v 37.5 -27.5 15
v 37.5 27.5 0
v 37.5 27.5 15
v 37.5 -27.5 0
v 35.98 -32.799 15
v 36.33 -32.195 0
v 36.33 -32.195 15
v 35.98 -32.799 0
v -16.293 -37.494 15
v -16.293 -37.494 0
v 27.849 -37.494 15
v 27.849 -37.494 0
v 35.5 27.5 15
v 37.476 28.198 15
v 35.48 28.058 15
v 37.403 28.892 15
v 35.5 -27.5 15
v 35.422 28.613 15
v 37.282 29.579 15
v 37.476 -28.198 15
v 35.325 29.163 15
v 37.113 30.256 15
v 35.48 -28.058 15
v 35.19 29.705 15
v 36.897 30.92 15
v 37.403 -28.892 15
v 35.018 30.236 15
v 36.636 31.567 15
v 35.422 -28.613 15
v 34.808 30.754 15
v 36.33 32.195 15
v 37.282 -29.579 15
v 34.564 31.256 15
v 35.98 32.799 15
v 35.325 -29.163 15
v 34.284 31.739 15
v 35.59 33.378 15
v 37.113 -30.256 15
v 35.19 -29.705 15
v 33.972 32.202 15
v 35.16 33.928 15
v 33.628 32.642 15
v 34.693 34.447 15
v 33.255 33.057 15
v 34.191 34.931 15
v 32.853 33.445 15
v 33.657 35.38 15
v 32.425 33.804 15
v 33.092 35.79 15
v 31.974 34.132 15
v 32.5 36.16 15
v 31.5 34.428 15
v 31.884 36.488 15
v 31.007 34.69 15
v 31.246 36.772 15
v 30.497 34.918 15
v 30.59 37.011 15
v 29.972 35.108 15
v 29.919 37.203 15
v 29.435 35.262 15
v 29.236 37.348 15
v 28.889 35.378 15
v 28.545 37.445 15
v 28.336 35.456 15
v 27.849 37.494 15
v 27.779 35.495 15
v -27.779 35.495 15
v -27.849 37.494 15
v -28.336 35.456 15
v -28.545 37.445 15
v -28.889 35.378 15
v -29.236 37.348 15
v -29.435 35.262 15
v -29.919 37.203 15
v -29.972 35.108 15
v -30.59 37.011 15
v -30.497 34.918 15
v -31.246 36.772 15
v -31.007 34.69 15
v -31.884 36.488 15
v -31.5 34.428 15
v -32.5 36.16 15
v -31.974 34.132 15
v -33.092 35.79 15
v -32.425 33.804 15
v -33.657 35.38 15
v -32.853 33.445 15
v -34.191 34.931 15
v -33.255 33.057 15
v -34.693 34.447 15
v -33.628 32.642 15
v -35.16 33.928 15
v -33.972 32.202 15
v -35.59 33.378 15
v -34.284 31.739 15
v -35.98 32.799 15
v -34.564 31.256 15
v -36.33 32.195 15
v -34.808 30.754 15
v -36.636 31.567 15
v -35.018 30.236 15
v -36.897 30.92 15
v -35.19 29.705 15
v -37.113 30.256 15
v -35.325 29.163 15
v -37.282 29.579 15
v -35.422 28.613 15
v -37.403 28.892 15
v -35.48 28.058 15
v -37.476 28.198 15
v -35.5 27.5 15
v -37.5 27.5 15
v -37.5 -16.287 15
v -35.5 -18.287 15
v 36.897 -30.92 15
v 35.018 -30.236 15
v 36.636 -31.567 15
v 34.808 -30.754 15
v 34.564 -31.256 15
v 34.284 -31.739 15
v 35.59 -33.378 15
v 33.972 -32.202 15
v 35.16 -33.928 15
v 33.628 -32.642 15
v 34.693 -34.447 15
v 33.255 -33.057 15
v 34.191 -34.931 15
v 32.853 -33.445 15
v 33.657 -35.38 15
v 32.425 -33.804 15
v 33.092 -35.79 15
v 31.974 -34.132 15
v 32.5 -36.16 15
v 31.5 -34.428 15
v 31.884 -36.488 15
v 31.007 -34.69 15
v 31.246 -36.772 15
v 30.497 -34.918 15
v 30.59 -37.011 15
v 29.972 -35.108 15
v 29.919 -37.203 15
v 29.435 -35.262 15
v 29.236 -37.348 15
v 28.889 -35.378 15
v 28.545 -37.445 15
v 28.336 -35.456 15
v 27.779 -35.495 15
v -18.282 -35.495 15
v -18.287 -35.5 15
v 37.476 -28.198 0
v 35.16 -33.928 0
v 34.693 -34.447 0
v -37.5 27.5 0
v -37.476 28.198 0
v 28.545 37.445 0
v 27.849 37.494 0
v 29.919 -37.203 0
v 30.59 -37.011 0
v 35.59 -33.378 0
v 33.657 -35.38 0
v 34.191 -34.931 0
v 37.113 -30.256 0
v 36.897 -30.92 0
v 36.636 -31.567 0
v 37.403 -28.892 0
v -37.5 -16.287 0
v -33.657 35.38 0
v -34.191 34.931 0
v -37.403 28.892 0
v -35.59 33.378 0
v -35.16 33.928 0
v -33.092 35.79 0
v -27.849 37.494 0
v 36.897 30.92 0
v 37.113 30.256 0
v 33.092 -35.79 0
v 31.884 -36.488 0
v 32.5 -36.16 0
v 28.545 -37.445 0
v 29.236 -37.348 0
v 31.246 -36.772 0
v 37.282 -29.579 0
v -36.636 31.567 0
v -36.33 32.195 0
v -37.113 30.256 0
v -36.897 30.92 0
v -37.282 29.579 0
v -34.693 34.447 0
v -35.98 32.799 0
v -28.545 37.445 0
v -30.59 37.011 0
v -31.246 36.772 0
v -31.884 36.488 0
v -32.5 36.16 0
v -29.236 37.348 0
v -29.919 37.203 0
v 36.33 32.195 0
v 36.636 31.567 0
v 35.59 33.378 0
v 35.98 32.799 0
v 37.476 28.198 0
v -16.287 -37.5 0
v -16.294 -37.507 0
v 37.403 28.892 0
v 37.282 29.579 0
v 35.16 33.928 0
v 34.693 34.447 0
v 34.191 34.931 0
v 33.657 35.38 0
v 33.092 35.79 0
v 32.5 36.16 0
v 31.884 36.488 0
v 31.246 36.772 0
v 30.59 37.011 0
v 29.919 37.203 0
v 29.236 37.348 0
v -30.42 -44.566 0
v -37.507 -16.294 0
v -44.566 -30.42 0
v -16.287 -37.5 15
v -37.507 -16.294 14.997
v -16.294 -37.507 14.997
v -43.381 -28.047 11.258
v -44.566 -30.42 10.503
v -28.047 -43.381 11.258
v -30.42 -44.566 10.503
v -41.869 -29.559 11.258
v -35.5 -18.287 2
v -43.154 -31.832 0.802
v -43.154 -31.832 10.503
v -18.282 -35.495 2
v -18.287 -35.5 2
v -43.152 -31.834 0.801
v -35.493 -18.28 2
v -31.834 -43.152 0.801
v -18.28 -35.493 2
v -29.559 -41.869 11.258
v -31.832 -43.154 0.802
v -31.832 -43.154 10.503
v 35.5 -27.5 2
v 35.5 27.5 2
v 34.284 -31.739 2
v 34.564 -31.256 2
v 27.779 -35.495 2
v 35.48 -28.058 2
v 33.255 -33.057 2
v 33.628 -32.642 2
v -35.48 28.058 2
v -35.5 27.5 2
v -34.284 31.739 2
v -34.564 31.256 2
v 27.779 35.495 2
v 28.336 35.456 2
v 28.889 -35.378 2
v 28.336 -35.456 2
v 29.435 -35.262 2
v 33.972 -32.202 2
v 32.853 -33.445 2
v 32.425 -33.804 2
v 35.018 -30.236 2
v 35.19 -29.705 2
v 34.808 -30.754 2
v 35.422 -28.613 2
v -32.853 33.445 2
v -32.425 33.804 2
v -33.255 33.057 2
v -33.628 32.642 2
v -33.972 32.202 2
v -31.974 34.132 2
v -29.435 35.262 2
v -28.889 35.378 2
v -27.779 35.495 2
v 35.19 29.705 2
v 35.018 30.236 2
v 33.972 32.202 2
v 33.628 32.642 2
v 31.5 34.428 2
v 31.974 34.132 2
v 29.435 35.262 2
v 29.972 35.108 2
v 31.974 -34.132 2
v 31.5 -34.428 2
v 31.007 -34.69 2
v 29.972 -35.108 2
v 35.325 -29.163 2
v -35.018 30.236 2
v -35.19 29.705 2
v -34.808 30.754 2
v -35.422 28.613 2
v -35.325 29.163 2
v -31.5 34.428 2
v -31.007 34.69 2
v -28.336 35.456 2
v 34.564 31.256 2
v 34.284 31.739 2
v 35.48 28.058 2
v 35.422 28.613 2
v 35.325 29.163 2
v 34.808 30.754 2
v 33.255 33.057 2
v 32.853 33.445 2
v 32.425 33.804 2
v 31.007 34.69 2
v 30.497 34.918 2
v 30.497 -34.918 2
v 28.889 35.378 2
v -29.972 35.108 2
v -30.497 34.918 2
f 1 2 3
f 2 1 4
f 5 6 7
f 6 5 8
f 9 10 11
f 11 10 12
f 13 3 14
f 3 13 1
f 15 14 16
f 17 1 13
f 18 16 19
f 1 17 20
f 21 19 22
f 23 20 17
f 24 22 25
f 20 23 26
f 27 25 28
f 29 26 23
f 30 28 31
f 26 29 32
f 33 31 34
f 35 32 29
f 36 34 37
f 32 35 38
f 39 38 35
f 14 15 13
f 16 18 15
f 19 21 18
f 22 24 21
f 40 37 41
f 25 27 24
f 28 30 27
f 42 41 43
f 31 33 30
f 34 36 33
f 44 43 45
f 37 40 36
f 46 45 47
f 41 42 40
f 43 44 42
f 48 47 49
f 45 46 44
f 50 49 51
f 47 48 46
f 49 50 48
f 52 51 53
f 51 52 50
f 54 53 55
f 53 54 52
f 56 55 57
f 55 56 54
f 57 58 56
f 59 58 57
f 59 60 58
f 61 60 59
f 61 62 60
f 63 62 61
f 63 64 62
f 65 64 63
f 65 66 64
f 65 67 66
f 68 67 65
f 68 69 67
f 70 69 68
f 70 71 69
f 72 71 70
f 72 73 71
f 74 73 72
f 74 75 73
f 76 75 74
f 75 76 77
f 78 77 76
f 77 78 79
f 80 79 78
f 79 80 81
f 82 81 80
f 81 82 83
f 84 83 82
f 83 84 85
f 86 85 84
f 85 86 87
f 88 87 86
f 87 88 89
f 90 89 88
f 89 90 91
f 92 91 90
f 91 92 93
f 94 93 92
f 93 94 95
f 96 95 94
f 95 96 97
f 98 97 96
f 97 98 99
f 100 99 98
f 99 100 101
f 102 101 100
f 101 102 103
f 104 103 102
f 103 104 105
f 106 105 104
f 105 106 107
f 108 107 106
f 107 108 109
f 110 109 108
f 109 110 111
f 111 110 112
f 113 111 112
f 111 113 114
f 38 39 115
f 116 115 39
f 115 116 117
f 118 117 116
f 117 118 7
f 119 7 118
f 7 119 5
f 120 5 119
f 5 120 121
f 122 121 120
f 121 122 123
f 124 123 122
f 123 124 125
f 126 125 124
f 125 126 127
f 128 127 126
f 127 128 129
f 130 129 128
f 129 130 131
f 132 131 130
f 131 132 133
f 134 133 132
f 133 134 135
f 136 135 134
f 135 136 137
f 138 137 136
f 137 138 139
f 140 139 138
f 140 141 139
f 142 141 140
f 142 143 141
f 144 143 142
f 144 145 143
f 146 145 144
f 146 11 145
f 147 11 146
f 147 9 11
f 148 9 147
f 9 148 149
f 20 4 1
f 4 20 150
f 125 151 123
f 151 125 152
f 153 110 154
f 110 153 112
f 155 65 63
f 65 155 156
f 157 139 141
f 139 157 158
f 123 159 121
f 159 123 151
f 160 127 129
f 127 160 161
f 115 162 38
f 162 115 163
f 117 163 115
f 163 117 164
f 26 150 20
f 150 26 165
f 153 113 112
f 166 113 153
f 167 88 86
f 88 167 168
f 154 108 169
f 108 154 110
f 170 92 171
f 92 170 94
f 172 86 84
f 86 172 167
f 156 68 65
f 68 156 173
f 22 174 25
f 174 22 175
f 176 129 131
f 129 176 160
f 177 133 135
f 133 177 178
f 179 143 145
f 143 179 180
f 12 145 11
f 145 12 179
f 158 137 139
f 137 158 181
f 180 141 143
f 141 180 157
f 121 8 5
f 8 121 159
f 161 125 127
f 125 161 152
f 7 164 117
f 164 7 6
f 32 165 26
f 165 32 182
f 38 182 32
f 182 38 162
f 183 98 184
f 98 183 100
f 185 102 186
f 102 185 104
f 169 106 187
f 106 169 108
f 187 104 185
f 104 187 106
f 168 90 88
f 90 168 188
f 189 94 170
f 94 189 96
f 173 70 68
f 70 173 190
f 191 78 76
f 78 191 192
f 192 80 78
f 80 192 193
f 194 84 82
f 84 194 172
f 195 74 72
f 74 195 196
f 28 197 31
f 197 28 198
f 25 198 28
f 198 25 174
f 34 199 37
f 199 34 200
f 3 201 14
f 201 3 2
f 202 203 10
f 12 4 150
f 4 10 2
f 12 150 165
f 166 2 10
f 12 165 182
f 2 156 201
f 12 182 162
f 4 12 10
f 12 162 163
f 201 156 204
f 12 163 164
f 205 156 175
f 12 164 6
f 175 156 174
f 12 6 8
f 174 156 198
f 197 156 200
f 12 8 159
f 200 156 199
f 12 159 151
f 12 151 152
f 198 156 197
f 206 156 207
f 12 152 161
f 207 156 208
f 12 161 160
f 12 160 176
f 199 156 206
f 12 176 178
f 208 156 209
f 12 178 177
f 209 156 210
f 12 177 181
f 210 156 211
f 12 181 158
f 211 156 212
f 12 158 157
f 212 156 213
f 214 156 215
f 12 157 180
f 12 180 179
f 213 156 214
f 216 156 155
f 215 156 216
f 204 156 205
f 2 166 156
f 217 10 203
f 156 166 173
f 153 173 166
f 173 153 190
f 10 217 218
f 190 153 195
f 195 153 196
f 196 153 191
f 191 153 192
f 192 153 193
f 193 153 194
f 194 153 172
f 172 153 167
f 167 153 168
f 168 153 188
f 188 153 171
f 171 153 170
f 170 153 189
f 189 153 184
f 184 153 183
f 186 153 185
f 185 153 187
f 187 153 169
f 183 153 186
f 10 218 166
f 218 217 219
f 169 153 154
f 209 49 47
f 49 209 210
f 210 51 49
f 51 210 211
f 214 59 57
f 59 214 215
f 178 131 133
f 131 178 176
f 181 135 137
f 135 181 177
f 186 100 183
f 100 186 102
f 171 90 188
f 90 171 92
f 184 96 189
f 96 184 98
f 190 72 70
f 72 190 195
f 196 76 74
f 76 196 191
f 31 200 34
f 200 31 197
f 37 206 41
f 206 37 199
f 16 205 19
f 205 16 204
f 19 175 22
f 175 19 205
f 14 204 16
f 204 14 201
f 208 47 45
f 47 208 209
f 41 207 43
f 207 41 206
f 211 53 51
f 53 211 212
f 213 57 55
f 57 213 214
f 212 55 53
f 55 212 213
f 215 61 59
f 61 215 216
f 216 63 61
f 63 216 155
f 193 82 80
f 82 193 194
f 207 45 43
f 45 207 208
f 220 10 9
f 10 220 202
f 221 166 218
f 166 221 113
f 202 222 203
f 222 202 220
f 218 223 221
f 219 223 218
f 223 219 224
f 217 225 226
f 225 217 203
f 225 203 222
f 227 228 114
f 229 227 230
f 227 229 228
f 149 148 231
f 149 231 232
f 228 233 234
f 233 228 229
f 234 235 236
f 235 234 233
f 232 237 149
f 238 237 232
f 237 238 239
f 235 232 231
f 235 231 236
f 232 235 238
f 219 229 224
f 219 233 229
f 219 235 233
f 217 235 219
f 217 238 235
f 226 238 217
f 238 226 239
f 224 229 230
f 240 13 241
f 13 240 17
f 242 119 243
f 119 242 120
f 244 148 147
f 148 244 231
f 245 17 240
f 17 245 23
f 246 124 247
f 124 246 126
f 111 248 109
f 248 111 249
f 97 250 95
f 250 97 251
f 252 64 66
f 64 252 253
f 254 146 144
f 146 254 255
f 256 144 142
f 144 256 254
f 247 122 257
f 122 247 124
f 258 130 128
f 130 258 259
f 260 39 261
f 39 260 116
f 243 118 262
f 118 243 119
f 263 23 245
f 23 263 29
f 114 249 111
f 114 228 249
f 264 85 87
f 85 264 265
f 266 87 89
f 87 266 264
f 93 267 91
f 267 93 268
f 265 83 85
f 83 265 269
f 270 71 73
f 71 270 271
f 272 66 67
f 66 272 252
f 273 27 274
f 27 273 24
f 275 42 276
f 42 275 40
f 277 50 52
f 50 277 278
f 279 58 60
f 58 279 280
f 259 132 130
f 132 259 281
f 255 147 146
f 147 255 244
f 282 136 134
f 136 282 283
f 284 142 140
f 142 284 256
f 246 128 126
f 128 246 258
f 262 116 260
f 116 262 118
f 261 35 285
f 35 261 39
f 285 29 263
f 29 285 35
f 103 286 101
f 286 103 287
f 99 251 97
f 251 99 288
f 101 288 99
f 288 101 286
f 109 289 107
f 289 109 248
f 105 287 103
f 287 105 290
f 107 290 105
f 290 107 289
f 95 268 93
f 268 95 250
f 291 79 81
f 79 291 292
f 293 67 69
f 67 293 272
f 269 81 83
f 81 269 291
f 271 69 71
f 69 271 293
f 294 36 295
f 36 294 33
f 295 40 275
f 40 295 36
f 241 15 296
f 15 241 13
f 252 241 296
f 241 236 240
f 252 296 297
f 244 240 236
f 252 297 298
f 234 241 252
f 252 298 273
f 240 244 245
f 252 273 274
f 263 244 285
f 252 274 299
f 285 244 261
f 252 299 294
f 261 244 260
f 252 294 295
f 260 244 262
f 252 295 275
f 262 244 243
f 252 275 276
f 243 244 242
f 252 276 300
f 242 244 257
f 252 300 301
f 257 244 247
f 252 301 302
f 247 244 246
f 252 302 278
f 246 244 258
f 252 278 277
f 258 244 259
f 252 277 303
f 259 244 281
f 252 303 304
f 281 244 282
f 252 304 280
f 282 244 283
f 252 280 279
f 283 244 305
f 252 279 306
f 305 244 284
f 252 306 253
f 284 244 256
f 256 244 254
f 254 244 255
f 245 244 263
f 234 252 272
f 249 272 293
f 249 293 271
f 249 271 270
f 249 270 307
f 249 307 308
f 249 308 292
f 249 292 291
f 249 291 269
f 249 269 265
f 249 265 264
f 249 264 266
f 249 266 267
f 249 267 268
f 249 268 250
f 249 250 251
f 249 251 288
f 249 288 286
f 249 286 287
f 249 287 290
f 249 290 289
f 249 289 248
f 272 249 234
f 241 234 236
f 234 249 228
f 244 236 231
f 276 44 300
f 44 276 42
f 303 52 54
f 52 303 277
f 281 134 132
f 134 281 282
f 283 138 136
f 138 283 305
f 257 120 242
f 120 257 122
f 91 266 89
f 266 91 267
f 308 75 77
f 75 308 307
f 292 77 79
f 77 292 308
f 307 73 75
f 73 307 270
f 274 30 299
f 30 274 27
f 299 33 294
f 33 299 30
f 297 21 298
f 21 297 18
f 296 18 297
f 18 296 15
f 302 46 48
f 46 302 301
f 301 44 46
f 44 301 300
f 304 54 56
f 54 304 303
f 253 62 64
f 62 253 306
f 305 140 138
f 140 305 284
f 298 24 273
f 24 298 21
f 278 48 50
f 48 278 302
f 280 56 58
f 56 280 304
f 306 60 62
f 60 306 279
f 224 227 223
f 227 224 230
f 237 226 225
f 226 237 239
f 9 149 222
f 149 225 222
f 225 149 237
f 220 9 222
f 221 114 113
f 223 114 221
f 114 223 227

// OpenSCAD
// Tray external width.
width = 75;

// Tray external length.
length = 75;

// Tray external height.
height = 15;

// Tray corner radius
corner_radius = 10;

// Thickness of wall around the tray
wall_thickness = 2;

// Thickness of the base
base_thickness = 2;

// Spout width at the tray end.
spout_base_width = 30;

// Spout width at the outer end.
spout_tip_width = 20;

// Spout end height as a fraction of the tray wall height.
spout_tip_height_fraction = 0.7;

// Base thickness at the outer end of the spout.
spout_tip_base_thickness = 0.8;

// Controls spout length. Tweak to get desired spout length. 
spout_length_control = 15;

// 0 for right handed, 1 for left handed.
left_hand = 0;  

// Circle smoothness (number of faces).
$fn = 90;

spout_vertical_angle = max(0, atan((height - height * spout_tip_height_fraction)/ spout_length_control));

// Adding '0' to hide in thingiverse customizer.
eps1 = 0.01 + 0;
eps2 = 2 * eps1;


module rounder_cube(w, l, h, r) {
    dx = l/2-r;
    dy = w/2-r;
  hull() {
      translate([dx, dy, 0]) cylinder(r=r, h=h);
      translate([dx, -dy, 0]) cylinder(r=r, h=h);
      translate([-dx, dy, 0]) cylinder(r=r, h=h);
      translate([-dx, -dy, 0]) cylinder(r=r, h=h);
  }
}

module spout() {
  hull() {
    translate([0, -spout_base_width/2, 0]) cube([eps1, spout_base_width, height]);
    translate([spout_length_control-eps1, -spout_tip_width/2, 0]) cube([eps1, spout_tip_width, height]);
  }
}

module spout_slot() {
  hull() {
    translate([-eps1, -(spout_base_width-sqrt(2)*2*wall_thickness)/2, base_thickness]) 
      cube([eps1, spout_base_width-sqrt(2)*2*wall_thickness, height]);
      
    translate([spout_length_control, -(spout_tip_width-2*wall_thickness)/2, spout_tip_base_thickness]) cube([eps1, spout_tip_width-2*wall_thickness, height]);
  }
  
  // Extra cut in case the spout end include the tray's missing 
  // corner so we don't have a leftover from that corner.
  translate([spout_length_control - eps1, -width, -height]) cube([width, 2*width, 3*height]);
}


module main() {
  mirror([left_hand, 0, 0])
  difference() {
     union() {
          //bowel();
               rounder_cube(width, length, height, corner_radius);

          translate([
            length/2-(spout_base_width/2)/sqrt(2), 
            width/2-(spout_base_width/2)/sqrt(2), 
            0]) 
                rotate([0, 0, 45]) spout();
     }
     
     translate([0, 0, base_thickness]) 
     rounder_cube(width-2*wall_thickness, length-2*wall_thickness, height-base_thickness+eps1, max(0.1, corner_radius-wall_thickness));
     
     translate([
            length/2-(spout_base_width/2)/sqrt(2), 
            width/2-(spout_base_width/2)/sqrt(2), 
            0]) 
                rotate([0, 0, 45]) spout_slot();
     
     translate([
         length/2-(spout_base_width/2)/sqrt(2), 
         width/2-(spout_base_width/2)/sqrt(2), 
         height])  
       rotate([0, 0, 45]) 
       rotate([0, spout_vertical_angle, 0]) 
       cylinder(d=2*length, h=height);
 }
     
}

//spout_slot();



rotate([0, 0, 180])  // for thingieverse
main();
